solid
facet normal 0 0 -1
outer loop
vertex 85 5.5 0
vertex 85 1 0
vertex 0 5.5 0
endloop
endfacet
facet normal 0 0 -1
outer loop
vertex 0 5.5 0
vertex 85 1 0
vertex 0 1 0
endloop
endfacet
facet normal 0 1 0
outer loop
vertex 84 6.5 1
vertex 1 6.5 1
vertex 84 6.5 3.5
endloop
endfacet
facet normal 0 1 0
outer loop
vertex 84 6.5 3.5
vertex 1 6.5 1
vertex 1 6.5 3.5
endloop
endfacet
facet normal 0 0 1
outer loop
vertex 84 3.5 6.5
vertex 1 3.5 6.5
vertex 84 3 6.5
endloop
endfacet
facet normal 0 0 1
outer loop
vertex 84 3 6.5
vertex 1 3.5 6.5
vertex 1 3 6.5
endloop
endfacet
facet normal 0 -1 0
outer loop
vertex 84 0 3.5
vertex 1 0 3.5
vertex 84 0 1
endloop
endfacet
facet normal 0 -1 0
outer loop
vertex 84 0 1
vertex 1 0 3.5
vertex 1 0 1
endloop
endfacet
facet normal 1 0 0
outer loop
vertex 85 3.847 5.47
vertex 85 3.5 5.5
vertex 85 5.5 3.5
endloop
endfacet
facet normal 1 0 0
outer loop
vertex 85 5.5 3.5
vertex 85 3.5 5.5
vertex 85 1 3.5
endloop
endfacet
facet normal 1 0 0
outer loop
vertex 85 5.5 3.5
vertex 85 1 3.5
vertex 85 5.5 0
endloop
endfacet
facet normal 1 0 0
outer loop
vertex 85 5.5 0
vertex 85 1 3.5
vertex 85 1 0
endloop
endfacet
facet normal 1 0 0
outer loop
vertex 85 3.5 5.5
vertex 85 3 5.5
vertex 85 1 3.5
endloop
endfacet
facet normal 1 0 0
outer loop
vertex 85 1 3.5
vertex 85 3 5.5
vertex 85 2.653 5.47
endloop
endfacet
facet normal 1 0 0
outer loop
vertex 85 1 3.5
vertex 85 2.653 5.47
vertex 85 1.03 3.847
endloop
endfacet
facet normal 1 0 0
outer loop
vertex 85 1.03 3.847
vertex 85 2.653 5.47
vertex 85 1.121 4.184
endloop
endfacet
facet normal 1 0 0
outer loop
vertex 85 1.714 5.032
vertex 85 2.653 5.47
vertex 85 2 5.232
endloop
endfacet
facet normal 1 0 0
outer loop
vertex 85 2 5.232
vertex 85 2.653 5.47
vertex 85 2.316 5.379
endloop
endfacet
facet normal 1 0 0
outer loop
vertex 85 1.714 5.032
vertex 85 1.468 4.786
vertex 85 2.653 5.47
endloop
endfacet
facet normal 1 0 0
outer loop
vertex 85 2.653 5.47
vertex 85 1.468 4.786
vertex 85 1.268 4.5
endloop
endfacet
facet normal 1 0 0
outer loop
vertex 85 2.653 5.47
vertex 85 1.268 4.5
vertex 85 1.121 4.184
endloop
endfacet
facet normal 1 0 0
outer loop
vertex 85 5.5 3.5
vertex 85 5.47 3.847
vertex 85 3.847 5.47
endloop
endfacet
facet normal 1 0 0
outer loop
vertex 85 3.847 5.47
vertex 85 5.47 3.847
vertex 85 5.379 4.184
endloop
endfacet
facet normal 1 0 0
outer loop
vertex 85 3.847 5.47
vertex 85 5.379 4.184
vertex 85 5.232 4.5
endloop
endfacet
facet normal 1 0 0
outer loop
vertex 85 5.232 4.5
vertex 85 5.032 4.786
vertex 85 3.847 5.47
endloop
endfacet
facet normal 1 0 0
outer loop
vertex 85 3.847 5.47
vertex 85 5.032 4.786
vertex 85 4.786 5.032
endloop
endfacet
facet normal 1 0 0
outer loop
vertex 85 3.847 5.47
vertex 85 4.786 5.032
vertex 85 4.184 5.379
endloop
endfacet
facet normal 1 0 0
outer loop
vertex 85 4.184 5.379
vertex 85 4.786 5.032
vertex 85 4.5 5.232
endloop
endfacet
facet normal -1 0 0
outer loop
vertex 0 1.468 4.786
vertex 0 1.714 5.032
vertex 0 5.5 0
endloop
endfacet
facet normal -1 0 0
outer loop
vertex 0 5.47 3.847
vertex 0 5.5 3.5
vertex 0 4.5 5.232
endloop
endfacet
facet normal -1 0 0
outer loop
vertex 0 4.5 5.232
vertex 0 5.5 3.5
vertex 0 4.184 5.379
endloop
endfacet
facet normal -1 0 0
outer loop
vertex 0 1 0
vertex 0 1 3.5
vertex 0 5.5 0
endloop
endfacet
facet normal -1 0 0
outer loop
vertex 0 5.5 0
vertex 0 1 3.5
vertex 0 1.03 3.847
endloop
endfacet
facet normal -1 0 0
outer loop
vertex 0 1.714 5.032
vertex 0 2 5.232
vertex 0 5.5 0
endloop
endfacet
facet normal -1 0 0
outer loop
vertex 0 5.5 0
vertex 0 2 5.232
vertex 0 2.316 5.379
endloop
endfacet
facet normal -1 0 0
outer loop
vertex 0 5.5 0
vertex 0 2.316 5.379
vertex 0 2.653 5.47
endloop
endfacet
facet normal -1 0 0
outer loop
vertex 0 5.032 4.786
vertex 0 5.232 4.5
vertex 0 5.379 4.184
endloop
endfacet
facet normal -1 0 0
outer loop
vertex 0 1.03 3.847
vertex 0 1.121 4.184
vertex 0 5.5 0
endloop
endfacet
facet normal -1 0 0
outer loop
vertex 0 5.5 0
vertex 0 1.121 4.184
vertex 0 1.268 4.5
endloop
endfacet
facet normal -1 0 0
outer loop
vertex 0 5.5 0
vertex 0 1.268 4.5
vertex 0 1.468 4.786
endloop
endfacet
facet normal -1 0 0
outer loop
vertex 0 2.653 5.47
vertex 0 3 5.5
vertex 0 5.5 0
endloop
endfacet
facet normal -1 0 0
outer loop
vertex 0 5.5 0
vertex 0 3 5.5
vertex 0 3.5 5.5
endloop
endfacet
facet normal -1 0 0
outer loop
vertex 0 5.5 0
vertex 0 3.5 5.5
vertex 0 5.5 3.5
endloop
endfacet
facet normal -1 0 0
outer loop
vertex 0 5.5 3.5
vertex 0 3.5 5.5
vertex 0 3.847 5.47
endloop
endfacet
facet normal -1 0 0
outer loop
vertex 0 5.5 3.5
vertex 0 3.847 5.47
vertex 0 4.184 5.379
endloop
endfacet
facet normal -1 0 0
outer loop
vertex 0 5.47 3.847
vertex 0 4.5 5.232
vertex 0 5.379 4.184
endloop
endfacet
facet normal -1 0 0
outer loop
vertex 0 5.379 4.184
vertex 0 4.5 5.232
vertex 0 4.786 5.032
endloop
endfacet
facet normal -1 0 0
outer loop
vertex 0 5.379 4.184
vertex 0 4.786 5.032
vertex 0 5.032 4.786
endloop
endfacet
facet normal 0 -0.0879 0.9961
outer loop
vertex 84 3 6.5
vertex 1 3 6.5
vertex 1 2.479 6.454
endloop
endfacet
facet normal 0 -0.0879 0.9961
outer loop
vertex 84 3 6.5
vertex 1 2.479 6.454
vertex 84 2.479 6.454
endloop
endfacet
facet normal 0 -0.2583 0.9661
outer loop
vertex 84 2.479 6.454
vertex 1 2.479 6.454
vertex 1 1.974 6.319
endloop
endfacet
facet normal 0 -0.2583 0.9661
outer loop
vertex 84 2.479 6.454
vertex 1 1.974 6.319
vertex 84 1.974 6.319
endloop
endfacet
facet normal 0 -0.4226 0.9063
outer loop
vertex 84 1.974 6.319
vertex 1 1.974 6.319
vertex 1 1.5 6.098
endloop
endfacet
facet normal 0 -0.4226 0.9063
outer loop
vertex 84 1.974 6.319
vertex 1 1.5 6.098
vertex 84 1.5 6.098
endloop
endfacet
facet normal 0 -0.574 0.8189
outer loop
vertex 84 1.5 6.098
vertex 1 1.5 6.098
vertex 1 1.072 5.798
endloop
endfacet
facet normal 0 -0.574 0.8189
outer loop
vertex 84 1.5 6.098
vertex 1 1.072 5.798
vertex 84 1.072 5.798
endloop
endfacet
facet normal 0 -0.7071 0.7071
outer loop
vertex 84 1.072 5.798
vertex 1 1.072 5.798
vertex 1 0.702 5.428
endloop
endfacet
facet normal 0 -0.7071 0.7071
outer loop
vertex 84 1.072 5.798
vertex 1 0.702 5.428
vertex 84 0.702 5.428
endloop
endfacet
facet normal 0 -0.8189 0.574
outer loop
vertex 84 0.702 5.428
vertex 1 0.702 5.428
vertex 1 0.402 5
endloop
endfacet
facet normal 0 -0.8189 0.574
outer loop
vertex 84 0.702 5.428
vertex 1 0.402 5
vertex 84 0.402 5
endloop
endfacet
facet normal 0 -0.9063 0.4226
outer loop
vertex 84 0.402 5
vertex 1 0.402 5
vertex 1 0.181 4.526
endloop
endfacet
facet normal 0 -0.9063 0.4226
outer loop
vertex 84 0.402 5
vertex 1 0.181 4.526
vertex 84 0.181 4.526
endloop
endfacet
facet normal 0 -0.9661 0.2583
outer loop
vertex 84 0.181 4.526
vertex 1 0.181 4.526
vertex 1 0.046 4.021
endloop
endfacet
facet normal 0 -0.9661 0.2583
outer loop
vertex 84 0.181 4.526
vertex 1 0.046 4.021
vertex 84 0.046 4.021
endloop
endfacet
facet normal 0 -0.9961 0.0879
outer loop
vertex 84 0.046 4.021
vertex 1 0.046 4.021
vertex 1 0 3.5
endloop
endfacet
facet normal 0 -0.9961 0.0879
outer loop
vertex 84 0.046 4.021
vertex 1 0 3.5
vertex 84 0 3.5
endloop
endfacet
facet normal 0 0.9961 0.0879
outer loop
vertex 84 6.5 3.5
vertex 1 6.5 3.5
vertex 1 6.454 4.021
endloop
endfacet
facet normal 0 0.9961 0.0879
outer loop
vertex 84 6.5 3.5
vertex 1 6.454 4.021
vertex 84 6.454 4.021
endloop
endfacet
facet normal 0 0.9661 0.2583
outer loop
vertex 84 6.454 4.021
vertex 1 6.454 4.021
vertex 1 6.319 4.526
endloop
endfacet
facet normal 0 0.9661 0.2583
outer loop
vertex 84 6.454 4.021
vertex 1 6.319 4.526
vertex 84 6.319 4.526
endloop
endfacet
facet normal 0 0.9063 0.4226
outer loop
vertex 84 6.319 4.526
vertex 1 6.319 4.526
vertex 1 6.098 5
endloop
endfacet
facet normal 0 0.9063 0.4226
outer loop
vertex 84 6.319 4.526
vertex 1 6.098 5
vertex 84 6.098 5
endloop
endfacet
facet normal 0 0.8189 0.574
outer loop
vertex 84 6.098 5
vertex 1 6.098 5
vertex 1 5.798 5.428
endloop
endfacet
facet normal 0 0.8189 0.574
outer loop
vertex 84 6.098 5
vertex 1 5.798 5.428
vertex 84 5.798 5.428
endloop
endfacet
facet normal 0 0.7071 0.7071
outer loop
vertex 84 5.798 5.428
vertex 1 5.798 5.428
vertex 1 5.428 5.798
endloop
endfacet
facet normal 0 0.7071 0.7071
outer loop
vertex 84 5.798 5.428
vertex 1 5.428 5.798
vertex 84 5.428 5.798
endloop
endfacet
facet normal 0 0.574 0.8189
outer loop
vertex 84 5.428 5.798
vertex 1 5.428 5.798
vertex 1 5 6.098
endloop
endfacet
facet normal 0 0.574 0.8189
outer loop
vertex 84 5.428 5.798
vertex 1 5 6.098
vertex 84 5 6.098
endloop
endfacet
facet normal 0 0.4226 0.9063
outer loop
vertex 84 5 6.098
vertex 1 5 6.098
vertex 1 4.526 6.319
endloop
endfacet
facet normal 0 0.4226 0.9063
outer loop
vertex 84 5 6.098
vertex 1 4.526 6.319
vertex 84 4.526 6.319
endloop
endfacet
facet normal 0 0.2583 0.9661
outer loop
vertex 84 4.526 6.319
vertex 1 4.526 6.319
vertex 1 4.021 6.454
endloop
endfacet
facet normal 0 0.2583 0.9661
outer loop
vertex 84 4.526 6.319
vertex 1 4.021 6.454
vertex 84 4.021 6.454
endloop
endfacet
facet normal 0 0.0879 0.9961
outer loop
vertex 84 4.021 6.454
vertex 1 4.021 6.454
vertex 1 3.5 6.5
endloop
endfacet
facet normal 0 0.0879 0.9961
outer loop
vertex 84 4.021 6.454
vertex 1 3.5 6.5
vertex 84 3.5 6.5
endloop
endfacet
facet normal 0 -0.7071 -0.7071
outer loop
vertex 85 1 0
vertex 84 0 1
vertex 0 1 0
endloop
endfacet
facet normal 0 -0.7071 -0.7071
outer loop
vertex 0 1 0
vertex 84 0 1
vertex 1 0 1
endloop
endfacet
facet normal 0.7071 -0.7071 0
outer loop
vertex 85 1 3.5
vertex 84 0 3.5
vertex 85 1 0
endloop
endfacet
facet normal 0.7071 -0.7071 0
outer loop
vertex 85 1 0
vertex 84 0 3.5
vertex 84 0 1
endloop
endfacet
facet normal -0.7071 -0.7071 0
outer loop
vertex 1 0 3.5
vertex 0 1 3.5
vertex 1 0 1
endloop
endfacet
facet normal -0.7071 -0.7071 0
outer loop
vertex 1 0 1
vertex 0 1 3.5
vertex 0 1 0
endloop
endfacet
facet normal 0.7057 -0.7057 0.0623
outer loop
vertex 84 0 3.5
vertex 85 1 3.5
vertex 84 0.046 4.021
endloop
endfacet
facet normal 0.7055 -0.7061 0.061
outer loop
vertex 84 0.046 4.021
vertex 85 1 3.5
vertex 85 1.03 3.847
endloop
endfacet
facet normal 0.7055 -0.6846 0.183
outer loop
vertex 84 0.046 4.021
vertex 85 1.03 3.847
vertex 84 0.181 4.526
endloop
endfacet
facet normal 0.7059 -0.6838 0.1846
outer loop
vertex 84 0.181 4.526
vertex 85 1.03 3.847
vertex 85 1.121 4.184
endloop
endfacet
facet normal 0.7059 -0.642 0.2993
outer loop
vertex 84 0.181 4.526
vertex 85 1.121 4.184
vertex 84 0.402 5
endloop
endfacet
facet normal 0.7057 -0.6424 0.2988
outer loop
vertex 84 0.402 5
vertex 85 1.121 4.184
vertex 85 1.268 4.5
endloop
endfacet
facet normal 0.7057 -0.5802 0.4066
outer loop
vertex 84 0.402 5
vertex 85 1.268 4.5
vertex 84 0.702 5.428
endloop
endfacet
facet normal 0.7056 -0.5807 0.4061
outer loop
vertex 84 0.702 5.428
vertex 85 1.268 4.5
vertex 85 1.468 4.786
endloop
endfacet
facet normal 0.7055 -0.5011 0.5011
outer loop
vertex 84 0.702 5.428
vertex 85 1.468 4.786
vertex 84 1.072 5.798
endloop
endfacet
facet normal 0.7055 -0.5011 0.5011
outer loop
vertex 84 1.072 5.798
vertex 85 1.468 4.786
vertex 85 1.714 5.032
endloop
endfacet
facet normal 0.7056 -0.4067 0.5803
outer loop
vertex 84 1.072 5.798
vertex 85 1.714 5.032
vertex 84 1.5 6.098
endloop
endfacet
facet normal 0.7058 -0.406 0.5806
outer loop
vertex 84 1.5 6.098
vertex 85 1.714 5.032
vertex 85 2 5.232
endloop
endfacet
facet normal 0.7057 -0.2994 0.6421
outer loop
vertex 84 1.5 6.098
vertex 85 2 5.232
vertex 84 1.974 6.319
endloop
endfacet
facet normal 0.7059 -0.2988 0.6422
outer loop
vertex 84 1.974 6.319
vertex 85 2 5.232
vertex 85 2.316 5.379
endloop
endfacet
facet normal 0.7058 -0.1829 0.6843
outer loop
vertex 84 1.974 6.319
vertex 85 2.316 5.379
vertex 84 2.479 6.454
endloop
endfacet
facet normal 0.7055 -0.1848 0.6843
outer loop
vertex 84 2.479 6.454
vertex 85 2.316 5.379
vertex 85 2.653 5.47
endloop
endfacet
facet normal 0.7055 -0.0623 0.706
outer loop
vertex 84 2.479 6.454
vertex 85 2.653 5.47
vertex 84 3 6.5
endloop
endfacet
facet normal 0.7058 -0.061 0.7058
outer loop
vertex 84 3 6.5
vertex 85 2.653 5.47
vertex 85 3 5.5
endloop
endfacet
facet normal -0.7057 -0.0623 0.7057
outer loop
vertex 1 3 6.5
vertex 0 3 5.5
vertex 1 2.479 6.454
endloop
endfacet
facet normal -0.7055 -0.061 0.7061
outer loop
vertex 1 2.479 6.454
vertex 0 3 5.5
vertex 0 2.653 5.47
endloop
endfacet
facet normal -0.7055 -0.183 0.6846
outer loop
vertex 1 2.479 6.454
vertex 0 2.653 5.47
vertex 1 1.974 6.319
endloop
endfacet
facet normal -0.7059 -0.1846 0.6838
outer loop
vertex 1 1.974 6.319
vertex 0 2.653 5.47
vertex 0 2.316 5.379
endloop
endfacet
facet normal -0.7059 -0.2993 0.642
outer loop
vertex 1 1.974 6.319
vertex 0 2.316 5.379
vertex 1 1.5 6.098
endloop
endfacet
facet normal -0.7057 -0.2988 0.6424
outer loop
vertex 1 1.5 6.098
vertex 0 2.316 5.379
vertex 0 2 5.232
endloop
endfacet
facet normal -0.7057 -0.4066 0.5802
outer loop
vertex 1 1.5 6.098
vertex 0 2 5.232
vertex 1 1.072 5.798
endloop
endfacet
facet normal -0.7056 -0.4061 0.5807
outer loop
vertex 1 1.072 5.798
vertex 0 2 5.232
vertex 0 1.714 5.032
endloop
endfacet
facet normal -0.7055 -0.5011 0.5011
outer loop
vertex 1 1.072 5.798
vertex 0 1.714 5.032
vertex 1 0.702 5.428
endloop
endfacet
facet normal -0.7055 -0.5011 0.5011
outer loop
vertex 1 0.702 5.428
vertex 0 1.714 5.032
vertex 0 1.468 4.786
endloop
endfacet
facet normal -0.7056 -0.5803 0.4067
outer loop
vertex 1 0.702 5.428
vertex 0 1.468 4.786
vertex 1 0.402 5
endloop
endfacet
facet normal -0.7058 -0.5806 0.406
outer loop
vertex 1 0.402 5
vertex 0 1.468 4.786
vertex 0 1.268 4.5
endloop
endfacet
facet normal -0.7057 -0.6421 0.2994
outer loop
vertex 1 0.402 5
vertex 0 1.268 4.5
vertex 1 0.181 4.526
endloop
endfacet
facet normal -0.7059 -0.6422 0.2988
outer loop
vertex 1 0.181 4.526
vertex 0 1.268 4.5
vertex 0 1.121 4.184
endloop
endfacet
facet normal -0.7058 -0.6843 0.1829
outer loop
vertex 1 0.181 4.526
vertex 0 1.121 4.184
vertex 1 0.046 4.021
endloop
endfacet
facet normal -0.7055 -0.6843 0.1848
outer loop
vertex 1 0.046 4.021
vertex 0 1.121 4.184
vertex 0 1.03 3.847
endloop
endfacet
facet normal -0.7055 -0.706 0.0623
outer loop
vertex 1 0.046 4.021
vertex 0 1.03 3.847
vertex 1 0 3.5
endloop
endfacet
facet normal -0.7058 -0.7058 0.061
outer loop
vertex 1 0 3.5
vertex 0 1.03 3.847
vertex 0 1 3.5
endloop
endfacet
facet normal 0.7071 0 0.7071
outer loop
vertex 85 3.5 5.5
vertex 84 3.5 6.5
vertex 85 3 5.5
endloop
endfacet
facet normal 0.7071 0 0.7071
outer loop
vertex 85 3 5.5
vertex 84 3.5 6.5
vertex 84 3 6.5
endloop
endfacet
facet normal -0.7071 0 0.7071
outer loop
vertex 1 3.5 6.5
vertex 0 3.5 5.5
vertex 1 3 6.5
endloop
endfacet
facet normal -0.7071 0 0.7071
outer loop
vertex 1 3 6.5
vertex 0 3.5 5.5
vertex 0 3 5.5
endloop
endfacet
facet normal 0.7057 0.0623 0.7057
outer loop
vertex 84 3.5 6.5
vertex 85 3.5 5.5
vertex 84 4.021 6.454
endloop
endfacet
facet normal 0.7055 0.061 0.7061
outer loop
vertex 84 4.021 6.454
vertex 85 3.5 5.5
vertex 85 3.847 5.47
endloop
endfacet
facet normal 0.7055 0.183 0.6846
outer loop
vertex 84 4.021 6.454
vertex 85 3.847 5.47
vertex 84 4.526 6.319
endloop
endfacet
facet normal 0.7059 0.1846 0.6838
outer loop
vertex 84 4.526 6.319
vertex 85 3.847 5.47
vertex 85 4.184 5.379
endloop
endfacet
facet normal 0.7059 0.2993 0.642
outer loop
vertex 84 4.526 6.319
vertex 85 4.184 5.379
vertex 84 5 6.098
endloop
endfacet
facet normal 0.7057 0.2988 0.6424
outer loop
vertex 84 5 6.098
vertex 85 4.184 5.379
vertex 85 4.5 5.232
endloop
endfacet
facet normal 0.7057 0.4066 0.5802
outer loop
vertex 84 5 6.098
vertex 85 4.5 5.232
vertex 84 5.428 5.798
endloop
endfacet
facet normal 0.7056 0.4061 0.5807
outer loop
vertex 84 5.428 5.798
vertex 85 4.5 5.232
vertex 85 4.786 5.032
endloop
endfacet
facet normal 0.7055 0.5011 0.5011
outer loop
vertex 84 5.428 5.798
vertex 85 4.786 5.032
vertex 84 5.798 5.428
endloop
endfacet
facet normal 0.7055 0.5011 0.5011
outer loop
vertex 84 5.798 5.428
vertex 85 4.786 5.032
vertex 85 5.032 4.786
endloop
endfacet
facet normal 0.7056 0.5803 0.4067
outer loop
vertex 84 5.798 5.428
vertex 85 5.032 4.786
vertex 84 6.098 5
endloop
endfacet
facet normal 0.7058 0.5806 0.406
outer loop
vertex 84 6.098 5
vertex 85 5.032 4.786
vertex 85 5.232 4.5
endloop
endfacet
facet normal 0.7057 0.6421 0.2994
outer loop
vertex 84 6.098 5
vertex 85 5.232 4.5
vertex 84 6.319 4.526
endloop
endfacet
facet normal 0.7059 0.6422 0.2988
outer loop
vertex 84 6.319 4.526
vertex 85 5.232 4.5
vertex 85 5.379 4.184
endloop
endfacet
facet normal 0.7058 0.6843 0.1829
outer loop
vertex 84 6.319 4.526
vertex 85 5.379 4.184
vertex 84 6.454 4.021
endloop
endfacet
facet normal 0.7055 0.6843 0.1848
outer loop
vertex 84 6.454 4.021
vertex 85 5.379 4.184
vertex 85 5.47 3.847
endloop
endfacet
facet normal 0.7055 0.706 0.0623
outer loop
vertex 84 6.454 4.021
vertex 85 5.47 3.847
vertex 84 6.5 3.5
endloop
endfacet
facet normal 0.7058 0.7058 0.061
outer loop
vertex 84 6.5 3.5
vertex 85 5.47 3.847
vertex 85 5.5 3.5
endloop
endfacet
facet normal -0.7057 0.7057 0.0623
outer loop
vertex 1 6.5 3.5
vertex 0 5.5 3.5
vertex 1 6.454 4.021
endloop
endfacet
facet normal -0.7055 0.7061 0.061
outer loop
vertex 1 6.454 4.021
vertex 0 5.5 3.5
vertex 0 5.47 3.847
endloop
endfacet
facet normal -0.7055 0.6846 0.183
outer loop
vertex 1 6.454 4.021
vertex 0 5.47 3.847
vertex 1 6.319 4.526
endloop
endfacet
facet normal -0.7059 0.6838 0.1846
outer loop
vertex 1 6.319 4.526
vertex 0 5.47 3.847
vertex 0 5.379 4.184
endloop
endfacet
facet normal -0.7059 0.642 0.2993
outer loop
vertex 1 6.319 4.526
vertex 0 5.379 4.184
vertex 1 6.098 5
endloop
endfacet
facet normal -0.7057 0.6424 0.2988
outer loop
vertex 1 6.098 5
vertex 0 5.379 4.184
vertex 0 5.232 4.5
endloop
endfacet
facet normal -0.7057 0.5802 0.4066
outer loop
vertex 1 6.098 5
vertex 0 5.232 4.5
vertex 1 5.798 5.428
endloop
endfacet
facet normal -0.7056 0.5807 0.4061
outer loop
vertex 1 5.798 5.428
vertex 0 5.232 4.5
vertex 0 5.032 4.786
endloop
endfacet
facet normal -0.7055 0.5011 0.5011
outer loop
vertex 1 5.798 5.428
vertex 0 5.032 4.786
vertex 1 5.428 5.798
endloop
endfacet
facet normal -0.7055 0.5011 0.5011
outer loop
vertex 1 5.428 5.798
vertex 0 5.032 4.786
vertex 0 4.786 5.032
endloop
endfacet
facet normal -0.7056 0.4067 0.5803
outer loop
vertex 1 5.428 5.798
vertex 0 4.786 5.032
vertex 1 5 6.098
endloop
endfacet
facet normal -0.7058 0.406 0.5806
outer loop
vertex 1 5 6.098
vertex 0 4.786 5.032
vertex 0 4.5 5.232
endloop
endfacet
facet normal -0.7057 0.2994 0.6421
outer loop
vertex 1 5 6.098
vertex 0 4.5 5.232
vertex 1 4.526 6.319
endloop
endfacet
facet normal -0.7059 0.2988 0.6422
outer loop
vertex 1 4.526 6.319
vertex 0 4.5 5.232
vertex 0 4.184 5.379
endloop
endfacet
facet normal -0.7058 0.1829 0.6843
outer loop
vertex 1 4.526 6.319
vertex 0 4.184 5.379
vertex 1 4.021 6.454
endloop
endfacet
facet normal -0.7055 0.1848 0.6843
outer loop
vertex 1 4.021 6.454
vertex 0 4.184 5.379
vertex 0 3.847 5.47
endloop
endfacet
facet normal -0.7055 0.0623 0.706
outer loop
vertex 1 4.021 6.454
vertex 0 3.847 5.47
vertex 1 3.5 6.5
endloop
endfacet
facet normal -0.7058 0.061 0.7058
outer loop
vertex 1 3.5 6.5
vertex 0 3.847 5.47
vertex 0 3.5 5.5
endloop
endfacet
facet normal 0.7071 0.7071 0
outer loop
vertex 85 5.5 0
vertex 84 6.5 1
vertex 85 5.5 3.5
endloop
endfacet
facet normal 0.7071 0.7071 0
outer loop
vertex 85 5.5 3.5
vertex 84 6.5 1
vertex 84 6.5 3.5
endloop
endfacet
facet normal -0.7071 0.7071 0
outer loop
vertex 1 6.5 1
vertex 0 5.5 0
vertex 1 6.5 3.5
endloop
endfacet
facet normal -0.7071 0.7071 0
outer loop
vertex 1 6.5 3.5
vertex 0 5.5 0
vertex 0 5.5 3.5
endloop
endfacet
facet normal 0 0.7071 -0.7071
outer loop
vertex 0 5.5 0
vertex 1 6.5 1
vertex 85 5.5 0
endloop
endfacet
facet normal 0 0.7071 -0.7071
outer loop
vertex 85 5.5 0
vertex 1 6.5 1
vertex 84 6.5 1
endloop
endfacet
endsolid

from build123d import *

# Parameters (mm, degrees)
CROQUIS2_W              = 6.5
CROQUIS2_H              = 6.5
SALIENTE_EXTRUIR1_DEPTH = 85
REDONDEO1_R             = 3
CHAFL_N1_SIZE           = 1


with BuildPart() as part:
    # Croquis2 → Saliente-Extruir1 (new body)
    with BuildSketch(Plane(origin=(0, 0, 0), x_dir=(0, 0, -1), z_dir=(1, 0, 0))):
        with Locations((-3.25, 3.25)):
            Rectangle(CROQUIS2_W, CROQUIS2_H)
    extrude(amount=SALIENTE_EXTRUIR1_DEPTH)

    # Redondeo1
    redondeo1_edges = [part.edges().sort_by_distance(p)[0] for p in [
        (42.5, 0, 6.5),
        (42.5, 6.5, 6.5),
    ]]
    fillet(redondeo1_edges, radius=REDONDEO1_R)

    # Chaflán1
    chafl_n1_edges = [part.edges().sort_by_distance(p)[0] for p in [
        (0, 0, 1.75),
        (85, 0, 1.75),
        (0, 3.25, 6.5),
        (0, 5.621320344, 5.621320344),
        (0, 0.878679656, 5.621320344),
        (85, 3.25, 6.5),
        (85, 5.621320344, 5.621320344),
        (85, 0.878679656, 5.621320344),
        (0, 6.5, 1.75),
        (85, 6.5, 1.75),
        (42.5, 0, 0),
        (42.5, 6.5, 0),
    ]]
    chamfer(chafl_n1_edges, length=CHAFL_N1_SIZE)


solid = part.part
